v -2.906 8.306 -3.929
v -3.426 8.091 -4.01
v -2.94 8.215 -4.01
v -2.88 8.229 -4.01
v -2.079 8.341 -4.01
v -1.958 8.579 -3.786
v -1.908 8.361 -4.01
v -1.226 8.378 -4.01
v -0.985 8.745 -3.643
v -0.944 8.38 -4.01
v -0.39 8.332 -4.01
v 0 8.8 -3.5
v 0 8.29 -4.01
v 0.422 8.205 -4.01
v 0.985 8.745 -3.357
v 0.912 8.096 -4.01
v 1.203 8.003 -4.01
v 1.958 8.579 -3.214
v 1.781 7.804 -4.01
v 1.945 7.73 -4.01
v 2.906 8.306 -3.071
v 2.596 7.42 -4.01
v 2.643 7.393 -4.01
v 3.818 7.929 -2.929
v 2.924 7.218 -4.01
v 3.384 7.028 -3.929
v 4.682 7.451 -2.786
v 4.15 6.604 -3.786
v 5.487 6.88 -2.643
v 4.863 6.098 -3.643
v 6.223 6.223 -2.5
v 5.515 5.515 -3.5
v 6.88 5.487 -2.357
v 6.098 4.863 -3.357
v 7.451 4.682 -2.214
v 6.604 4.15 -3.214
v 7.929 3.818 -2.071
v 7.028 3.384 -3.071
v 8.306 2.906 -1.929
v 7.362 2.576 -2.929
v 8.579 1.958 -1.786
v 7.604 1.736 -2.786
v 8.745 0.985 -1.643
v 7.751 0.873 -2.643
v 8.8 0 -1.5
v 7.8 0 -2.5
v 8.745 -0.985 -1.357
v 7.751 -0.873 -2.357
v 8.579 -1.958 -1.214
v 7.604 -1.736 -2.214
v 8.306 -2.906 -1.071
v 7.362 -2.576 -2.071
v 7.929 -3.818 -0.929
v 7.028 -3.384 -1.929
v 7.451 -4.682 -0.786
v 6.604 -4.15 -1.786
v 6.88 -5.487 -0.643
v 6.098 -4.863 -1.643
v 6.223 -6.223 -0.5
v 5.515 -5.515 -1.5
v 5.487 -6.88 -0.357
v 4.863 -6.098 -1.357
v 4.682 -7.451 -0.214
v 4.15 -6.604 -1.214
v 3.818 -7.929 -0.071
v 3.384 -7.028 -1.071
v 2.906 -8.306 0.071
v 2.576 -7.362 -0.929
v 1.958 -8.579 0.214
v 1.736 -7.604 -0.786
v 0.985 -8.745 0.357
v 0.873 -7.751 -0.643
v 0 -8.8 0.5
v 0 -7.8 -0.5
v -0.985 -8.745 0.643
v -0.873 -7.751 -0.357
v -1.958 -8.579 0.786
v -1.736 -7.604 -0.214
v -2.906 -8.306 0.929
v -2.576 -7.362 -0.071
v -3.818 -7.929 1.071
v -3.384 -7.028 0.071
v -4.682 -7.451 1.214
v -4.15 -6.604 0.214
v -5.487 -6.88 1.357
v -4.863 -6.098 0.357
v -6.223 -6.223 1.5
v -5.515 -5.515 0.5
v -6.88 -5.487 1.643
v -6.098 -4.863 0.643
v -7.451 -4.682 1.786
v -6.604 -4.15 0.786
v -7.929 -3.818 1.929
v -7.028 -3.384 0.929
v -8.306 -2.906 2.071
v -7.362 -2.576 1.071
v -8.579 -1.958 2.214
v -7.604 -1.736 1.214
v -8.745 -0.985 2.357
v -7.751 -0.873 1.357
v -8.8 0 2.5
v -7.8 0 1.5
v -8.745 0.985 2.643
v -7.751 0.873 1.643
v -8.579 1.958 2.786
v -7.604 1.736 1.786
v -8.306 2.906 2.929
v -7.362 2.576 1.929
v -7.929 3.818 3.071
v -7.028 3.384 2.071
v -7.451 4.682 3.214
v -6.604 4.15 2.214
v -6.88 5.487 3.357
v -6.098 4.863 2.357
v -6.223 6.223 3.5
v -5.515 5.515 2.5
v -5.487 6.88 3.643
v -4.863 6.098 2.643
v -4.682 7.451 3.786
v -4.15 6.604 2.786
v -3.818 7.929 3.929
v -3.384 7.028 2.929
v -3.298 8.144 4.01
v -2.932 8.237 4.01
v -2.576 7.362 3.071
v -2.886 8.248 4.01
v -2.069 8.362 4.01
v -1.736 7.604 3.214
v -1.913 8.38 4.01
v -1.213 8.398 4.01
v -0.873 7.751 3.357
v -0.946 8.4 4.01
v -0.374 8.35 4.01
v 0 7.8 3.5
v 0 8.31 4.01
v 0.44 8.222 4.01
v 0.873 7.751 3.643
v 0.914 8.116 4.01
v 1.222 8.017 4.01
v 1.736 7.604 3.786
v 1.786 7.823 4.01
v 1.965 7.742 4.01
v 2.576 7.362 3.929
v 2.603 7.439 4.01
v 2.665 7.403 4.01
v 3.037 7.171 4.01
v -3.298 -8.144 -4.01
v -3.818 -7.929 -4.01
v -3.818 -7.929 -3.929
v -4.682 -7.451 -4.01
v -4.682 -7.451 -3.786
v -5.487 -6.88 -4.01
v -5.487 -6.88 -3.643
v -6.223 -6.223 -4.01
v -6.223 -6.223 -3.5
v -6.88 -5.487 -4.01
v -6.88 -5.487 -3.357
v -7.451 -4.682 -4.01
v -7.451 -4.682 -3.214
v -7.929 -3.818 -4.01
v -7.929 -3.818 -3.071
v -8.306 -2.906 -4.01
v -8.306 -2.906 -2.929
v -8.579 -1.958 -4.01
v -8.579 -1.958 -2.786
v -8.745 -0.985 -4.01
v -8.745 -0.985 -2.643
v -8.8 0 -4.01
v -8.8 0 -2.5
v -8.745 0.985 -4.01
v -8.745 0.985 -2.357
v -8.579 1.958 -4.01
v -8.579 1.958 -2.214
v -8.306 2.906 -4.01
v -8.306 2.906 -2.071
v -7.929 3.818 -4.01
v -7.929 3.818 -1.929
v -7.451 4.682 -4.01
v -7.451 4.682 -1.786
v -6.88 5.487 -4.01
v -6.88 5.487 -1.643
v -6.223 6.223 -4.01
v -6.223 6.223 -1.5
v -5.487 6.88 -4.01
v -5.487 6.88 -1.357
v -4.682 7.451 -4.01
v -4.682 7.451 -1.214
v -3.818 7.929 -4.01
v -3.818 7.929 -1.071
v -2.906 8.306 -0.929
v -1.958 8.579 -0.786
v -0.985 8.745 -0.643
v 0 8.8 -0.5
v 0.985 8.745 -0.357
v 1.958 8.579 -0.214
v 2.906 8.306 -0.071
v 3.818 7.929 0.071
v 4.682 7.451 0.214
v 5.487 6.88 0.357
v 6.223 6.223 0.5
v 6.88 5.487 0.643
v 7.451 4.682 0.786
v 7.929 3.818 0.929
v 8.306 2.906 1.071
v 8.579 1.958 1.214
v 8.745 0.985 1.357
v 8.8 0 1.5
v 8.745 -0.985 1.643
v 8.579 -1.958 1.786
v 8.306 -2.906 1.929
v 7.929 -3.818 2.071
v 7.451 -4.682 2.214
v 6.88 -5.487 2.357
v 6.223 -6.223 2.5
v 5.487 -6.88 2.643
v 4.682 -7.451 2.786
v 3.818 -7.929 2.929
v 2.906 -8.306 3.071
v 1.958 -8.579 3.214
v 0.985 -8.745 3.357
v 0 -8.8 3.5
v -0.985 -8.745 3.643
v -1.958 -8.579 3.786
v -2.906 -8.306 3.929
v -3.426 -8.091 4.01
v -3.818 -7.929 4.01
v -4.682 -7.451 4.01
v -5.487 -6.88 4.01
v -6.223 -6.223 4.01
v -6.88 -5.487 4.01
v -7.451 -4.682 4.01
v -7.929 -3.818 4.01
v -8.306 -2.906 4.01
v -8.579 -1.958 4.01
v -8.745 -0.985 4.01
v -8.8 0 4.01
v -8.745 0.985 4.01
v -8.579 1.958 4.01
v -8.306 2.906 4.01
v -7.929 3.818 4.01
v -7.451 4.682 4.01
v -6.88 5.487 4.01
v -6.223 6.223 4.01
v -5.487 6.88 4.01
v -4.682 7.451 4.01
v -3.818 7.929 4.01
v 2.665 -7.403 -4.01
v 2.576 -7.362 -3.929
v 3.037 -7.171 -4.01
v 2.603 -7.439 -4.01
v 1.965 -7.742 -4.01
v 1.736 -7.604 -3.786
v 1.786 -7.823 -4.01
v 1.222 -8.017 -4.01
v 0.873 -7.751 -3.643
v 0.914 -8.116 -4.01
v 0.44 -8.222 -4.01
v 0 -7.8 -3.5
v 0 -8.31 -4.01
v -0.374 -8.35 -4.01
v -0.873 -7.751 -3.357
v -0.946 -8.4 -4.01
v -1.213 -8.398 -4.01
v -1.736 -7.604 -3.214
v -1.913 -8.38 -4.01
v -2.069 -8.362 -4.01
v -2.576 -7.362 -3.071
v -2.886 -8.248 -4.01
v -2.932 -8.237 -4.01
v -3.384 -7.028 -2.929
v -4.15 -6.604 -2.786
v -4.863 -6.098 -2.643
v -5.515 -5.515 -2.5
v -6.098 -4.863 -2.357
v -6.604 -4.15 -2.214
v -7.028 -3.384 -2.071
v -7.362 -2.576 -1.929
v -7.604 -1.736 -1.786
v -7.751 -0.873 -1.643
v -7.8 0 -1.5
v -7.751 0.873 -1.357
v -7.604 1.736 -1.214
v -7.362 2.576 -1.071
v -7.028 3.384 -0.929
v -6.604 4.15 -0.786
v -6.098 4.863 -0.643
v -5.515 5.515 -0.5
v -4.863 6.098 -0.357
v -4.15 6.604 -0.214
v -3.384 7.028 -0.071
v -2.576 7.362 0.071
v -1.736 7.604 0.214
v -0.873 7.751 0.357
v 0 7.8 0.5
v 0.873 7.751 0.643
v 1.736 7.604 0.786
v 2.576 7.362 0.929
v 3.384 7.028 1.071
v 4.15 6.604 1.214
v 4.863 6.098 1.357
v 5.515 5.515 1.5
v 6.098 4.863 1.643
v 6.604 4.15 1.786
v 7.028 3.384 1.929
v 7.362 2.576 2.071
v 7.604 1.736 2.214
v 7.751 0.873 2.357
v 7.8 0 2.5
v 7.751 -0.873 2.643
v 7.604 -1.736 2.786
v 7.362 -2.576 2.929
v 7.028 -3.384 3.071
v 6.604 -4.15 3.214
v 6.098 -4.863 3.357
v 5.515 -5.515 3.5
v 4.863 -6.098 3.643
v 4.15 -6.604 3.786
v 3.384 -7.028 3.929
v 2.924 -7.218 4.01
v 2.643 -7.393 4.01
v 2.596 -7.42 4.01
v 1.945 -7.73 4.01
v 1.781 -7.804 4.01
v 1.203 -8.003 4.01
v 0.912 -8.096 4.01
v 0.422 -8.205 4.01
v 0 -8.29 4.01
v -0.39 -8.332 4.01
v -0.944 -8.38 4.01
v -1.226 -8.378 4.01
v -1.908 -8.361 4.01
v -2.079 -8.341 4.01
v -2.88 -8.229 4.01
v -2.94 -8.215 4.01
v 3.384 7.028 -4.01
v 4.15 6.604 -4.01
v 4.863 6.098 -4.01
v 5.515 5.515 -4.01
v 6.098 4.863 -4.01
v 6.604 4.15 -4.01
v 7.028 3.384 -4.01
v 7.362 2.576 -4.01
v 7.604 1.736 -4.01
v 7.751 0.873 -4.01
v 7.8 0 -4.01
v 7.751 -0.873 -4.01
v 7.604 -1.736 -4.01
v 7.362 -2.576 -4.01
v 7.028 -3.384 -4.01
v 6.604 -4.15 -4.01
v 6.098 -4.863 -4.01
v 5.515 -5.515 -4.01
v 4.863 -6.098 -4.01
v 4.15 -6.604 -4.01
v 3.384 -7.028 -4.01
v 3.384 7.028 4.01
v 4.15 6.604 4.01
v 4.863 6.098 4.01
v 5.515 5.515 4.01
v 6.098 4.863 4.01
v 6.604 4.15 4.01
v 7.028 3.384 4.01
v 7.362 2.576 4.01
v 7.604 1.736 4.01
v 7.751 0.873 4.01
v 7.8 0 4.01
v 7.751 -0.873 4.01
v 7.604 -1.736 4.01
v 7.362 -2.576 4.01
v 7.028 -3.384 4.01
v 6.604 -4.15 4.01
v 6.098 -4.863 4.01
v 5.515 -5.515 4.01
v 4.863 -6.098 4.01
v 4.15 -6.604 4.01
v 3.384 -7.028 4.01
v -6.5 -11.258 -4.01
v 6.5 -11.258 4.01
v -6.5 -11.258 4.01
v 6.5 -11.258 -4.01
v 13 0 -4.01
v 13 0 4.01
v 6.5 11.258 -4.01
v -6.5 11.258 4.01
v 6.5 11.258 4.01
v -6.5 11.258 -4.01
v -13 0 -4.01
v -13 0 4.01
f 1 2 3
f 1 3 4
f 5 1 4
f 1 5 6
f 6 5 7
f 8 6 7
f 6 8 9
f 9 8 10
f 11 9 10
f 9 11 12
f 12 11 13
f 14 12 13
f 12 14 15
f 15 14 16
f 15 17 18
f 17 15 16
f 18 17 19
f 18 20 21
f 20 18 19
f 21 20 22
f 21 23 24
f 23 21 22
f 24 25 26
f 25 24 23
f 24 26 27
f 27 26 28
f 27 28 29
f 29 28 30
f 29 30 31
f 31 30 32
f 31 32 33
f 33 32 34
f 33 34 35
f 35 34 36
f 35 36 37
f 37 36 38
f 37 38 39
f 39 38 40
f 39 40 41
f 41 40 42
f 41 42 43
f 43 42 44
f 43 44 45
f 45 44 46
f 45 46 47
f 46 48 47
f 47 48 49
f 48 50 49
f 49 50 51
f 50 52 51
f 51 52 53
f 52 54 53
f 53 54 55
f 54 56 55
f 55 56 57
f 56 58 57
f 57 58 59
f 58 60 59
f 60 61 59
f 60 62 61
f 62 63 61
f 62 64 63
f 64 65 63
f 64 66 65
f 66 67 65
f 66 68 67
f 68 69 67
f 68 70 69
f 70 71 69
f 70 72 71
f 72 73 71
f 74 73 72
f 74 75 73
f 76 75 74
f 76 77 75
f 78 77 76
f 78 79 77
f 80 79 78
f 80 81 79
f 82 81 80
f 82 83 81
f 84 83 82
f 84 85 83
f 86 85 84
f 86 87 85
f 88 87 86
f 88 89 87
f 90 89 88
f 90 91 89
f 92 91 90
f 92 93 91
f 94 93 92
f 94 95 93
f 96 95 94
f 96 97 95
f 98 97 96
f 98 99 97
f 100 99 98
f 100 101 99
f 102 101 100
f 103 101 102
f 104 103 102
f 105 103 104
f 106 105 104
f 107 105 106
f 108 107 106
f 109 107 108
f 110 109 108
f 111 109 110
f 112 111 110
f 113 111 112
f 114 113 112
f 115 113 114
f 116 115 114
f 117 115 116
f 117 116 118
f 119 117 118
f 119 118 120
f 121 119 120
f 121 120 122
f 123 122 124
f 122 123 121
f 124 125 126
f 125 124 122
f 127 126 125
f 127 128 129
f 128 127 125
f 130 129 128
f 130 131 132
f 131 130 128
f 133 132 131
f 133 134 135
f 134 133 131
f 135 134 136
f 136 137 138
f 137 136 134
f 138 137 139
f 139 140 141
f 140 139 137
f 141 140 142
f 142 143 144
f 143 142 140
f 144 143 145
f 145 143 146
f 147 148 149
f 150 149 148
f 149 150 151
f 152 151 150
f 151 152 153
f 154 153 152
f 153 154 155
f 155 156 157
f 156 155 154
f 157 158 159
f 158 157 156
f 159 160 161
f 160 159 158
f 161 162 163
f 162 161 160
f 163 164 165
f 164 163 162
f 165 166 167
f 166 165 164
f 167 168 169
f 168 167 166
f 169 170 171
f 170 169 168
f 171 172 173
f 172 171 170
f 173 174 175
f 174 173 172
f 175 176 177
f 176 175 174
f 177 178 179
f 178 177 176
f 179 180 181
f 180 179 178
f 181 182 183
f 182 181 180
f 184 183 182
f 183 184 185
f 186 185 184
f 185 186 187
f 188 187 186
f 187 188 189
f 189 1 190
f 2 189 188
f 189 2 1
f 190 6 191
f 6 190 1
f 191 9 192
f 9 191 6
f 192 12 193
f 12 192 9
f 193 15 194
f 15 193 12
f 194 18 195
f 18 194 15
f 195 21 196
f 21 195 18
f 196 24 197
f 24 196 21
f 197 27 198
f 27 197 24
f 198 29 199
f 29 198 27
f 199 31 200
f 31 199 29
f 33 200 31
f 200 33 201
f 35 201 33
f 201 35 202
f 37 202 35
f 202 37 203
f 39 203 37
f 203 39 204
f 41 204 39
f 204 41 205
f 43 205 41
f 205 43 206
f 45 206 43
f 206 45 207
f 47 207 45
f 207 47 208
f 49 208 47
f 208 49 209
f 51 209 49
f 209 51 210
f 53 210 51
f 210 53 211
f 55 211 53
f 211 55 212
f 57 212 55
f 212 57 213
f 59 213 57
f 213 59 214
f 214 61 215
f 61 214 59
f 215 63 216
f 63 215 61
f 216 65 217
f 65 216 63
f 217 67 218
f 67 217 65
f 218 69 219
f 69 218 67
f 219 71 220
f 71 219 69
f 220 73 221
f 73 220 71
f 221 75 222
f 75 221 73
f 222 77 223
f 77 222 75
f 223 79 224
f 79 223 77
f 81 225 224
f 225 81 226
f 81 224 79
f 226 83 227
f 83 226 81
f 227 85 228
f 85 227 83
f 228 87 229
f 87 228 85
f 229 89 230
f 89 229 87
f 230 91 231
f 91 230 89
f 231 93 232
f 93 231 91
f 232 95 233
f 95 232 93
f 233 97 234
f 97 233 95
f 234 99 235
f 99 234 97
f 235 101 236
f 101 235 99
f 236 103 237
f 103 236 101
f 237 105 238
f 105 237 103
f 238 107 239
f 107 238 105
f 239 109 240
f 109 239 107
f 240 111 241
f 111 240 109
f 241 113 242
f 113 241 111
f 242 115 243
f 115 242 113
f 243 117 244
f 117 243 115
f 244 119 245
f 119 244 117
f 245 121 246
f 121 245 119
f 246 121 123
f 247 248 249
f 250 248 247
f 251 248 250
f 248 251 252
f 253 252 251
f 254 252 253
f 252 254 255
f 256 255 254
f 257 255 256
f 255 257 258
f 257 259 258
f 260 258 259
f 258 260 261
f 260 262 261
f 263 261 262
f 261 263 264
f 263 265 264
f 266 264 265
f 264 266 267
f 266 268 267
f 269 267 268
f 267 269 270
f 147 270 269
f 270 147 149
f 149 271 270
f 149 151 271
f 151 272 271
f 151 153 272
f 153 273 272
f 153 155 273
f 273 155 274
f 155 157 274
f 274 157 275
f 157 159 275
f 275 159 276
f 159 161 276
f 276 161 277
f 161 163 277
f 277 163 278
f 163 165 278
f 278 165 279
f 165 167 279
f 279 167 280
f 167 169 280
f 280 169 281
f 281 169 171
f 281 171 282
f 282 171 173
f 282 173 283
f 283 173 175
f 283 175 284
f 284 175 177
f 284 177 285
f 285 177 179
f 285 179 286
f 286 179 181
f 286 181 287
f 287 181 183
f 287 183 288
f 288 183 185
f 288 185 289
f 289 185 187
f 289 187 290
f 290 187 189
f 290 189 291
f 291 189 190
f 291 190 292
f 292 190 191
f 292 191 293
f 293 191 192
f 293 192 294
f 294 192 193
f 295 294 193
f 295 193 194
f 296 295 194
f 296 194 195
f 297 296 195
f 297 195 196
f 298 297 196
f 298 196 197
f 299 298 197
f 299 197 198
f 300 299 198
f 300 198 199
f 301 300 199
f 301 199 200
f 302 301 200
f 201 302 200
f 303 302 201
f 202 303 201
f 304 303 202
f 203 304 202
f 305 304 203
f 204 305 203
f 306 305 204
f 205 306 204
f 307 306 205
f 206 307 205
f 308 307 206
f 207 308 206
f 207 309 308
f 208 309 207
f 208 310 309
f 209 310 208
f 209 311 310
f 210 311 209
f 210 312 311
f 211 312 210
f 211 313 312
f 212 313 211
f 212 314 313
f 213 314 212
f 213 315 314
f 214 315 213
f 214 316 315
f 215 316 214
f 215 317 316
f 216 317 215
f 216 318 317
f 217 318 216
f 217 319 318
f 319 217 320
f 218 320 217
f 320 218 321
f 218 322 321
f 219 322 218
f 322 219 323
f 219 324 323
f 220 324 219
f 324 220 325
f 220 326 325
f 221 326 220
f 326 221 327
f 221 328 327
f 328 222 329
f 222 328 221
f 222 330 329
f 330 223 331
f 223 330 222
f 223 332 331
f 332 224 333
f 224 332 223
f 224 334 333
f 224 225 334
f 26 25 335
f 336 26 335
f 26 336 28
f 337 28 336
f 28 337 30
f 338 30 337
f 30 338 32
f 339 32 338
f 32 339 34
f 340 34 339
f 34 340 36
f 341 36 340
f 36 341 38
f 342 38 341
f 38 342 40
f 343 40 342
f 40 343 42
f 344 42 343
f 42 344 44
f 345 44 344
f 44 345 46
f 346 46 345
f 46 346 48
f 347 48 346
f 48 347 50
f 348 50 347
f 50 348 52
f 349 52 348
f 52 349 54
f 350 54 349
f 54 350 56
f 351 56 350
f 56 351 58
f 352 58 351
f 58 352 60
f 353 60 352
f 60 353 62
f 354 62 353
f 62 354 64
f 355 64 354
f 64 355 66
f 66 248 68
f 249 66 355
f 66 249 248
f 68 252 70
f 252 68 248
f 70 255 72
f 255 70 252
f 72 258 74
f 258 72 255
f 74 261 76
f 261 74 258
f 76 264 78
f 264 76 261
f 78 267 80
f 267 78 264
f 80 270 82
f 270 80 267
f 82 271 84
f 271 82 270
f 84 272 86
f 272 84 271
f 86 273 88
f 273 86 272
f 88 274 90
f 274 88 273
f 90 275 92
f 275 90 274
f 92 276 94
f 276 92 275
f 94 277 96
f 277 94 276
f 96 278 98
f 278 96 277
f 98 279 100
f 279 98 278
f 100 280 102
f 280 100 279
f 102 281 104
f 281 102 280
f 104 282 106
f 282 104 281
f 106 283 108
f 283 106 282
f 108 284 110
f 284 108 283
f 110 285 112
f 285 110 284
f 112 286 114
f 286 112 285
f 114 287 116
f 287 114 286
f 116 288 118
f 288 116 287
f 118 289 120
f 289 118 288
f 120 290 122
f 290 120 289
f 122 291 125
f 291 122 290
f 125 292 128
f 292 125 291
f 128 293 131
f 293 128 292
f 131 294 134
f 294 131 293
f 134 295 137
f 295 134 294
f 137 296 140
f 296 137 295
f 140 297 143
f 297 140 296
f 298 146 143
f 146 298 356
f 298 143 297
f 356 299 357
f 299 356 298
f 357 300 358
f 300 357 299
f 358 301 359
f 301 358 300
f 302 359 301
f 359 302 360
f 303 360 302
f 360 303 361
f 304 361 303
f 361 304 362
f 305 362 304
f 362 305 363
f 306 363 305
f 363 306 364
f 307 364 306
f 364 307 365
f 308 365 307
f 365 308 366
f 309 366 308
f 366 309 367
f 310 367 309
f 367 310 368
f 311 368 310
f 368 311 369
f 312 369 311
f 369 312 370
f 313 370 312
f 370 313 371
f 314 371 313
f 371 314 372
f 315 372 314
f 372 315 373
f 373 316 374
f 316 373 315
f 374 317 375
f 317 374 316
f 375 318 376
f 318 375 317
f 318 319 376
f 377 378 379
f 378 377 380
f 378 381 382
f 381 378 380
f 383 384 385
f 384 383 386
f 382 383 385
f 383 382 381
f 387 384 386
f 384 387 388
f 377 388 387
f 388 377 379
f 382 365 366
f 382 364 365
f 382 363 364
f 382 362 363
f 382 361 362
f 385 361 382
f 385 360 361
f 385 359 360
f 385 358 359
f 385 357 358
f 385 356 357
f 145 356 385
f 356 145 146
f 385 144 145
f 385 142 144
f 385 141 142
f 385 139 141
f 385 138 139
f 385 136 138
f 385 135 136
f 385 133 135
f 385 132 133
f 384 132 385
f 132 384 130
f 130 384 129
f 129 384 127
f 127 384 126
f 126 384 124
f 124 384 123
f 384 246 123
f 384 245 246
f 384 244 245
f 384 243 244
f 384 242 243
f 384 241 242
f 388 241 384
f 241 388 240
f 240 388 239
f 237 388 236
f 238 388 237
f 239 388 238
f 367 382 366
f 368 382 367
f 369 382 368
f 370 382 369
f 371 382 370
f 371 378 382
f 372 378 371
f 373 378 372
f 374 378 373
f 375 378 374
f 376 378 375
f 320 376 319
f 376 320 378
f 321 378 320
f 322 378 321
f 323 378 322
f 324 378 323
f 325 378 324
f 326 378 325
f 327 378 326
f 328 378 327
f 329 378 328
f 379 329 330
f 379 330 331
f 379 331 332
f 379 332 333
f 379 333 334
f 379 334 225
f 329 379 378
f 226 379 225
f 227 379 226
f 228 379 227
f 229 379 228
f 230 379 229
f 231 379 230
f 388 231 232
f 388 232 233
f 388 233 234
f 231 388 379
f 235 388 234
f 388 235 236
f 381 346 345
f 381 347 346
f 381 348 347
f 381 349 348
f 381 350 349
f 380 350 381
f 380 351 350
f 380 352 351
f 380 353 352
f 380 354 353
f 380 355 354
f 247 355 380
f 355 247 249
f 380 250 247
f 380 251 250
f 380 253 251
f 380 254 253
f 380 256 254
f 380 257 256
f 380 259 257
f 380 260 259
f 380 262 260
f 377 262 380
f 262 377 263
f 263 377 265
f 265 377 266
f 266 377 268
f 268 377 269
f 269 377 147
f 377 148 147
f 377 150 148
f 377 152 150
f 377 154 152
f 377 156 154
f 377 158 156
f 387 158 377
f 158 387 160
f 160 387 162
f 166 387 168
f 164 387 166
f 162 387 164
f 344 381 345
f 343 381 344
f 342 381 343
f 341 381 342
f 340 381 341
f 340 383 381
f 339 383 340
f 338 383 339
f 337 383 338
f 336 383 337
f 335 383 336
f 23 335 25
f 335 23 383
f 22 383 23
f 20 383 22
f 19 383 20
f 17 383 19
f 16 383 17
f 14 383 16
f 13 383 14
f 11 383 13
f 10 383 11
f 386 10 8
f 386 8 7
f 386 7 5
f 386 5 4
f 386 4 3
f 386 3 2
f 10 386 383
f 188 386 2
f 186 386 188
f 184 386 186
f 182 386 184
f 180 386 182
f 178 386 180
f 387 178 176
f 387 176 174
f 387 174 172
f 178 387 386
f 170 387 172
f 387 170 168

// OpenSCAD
// Copyright (c) 2026 Chris Lee and contributors.
// Licensed under the MIT license. See LICENSE file in the project root for details.

include <plug.scad>

nut();
